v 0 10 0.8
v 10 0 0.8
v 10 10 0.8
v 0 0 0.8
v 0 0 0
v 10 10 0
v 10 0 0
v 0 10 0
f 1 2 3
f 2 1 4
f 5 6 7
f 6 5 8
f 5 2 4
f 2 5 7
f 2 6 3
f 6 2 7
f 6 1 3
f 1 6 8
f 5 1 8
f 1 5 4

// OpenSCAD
/* Warning, this is a very basic generator with a lot of approximation 
input data : [WFBGA, LJX, 10x10x0.8mm, 176, , A, C04-00498A]
generated by com.zoubworld.electronics.cad.model3d.Basic
Date : Sun Feb 15 10:50:48 CET 2026
*/

//body
color("black")
translate([0,0,0])
cube([10.0,10.0,0.8], center=false);
